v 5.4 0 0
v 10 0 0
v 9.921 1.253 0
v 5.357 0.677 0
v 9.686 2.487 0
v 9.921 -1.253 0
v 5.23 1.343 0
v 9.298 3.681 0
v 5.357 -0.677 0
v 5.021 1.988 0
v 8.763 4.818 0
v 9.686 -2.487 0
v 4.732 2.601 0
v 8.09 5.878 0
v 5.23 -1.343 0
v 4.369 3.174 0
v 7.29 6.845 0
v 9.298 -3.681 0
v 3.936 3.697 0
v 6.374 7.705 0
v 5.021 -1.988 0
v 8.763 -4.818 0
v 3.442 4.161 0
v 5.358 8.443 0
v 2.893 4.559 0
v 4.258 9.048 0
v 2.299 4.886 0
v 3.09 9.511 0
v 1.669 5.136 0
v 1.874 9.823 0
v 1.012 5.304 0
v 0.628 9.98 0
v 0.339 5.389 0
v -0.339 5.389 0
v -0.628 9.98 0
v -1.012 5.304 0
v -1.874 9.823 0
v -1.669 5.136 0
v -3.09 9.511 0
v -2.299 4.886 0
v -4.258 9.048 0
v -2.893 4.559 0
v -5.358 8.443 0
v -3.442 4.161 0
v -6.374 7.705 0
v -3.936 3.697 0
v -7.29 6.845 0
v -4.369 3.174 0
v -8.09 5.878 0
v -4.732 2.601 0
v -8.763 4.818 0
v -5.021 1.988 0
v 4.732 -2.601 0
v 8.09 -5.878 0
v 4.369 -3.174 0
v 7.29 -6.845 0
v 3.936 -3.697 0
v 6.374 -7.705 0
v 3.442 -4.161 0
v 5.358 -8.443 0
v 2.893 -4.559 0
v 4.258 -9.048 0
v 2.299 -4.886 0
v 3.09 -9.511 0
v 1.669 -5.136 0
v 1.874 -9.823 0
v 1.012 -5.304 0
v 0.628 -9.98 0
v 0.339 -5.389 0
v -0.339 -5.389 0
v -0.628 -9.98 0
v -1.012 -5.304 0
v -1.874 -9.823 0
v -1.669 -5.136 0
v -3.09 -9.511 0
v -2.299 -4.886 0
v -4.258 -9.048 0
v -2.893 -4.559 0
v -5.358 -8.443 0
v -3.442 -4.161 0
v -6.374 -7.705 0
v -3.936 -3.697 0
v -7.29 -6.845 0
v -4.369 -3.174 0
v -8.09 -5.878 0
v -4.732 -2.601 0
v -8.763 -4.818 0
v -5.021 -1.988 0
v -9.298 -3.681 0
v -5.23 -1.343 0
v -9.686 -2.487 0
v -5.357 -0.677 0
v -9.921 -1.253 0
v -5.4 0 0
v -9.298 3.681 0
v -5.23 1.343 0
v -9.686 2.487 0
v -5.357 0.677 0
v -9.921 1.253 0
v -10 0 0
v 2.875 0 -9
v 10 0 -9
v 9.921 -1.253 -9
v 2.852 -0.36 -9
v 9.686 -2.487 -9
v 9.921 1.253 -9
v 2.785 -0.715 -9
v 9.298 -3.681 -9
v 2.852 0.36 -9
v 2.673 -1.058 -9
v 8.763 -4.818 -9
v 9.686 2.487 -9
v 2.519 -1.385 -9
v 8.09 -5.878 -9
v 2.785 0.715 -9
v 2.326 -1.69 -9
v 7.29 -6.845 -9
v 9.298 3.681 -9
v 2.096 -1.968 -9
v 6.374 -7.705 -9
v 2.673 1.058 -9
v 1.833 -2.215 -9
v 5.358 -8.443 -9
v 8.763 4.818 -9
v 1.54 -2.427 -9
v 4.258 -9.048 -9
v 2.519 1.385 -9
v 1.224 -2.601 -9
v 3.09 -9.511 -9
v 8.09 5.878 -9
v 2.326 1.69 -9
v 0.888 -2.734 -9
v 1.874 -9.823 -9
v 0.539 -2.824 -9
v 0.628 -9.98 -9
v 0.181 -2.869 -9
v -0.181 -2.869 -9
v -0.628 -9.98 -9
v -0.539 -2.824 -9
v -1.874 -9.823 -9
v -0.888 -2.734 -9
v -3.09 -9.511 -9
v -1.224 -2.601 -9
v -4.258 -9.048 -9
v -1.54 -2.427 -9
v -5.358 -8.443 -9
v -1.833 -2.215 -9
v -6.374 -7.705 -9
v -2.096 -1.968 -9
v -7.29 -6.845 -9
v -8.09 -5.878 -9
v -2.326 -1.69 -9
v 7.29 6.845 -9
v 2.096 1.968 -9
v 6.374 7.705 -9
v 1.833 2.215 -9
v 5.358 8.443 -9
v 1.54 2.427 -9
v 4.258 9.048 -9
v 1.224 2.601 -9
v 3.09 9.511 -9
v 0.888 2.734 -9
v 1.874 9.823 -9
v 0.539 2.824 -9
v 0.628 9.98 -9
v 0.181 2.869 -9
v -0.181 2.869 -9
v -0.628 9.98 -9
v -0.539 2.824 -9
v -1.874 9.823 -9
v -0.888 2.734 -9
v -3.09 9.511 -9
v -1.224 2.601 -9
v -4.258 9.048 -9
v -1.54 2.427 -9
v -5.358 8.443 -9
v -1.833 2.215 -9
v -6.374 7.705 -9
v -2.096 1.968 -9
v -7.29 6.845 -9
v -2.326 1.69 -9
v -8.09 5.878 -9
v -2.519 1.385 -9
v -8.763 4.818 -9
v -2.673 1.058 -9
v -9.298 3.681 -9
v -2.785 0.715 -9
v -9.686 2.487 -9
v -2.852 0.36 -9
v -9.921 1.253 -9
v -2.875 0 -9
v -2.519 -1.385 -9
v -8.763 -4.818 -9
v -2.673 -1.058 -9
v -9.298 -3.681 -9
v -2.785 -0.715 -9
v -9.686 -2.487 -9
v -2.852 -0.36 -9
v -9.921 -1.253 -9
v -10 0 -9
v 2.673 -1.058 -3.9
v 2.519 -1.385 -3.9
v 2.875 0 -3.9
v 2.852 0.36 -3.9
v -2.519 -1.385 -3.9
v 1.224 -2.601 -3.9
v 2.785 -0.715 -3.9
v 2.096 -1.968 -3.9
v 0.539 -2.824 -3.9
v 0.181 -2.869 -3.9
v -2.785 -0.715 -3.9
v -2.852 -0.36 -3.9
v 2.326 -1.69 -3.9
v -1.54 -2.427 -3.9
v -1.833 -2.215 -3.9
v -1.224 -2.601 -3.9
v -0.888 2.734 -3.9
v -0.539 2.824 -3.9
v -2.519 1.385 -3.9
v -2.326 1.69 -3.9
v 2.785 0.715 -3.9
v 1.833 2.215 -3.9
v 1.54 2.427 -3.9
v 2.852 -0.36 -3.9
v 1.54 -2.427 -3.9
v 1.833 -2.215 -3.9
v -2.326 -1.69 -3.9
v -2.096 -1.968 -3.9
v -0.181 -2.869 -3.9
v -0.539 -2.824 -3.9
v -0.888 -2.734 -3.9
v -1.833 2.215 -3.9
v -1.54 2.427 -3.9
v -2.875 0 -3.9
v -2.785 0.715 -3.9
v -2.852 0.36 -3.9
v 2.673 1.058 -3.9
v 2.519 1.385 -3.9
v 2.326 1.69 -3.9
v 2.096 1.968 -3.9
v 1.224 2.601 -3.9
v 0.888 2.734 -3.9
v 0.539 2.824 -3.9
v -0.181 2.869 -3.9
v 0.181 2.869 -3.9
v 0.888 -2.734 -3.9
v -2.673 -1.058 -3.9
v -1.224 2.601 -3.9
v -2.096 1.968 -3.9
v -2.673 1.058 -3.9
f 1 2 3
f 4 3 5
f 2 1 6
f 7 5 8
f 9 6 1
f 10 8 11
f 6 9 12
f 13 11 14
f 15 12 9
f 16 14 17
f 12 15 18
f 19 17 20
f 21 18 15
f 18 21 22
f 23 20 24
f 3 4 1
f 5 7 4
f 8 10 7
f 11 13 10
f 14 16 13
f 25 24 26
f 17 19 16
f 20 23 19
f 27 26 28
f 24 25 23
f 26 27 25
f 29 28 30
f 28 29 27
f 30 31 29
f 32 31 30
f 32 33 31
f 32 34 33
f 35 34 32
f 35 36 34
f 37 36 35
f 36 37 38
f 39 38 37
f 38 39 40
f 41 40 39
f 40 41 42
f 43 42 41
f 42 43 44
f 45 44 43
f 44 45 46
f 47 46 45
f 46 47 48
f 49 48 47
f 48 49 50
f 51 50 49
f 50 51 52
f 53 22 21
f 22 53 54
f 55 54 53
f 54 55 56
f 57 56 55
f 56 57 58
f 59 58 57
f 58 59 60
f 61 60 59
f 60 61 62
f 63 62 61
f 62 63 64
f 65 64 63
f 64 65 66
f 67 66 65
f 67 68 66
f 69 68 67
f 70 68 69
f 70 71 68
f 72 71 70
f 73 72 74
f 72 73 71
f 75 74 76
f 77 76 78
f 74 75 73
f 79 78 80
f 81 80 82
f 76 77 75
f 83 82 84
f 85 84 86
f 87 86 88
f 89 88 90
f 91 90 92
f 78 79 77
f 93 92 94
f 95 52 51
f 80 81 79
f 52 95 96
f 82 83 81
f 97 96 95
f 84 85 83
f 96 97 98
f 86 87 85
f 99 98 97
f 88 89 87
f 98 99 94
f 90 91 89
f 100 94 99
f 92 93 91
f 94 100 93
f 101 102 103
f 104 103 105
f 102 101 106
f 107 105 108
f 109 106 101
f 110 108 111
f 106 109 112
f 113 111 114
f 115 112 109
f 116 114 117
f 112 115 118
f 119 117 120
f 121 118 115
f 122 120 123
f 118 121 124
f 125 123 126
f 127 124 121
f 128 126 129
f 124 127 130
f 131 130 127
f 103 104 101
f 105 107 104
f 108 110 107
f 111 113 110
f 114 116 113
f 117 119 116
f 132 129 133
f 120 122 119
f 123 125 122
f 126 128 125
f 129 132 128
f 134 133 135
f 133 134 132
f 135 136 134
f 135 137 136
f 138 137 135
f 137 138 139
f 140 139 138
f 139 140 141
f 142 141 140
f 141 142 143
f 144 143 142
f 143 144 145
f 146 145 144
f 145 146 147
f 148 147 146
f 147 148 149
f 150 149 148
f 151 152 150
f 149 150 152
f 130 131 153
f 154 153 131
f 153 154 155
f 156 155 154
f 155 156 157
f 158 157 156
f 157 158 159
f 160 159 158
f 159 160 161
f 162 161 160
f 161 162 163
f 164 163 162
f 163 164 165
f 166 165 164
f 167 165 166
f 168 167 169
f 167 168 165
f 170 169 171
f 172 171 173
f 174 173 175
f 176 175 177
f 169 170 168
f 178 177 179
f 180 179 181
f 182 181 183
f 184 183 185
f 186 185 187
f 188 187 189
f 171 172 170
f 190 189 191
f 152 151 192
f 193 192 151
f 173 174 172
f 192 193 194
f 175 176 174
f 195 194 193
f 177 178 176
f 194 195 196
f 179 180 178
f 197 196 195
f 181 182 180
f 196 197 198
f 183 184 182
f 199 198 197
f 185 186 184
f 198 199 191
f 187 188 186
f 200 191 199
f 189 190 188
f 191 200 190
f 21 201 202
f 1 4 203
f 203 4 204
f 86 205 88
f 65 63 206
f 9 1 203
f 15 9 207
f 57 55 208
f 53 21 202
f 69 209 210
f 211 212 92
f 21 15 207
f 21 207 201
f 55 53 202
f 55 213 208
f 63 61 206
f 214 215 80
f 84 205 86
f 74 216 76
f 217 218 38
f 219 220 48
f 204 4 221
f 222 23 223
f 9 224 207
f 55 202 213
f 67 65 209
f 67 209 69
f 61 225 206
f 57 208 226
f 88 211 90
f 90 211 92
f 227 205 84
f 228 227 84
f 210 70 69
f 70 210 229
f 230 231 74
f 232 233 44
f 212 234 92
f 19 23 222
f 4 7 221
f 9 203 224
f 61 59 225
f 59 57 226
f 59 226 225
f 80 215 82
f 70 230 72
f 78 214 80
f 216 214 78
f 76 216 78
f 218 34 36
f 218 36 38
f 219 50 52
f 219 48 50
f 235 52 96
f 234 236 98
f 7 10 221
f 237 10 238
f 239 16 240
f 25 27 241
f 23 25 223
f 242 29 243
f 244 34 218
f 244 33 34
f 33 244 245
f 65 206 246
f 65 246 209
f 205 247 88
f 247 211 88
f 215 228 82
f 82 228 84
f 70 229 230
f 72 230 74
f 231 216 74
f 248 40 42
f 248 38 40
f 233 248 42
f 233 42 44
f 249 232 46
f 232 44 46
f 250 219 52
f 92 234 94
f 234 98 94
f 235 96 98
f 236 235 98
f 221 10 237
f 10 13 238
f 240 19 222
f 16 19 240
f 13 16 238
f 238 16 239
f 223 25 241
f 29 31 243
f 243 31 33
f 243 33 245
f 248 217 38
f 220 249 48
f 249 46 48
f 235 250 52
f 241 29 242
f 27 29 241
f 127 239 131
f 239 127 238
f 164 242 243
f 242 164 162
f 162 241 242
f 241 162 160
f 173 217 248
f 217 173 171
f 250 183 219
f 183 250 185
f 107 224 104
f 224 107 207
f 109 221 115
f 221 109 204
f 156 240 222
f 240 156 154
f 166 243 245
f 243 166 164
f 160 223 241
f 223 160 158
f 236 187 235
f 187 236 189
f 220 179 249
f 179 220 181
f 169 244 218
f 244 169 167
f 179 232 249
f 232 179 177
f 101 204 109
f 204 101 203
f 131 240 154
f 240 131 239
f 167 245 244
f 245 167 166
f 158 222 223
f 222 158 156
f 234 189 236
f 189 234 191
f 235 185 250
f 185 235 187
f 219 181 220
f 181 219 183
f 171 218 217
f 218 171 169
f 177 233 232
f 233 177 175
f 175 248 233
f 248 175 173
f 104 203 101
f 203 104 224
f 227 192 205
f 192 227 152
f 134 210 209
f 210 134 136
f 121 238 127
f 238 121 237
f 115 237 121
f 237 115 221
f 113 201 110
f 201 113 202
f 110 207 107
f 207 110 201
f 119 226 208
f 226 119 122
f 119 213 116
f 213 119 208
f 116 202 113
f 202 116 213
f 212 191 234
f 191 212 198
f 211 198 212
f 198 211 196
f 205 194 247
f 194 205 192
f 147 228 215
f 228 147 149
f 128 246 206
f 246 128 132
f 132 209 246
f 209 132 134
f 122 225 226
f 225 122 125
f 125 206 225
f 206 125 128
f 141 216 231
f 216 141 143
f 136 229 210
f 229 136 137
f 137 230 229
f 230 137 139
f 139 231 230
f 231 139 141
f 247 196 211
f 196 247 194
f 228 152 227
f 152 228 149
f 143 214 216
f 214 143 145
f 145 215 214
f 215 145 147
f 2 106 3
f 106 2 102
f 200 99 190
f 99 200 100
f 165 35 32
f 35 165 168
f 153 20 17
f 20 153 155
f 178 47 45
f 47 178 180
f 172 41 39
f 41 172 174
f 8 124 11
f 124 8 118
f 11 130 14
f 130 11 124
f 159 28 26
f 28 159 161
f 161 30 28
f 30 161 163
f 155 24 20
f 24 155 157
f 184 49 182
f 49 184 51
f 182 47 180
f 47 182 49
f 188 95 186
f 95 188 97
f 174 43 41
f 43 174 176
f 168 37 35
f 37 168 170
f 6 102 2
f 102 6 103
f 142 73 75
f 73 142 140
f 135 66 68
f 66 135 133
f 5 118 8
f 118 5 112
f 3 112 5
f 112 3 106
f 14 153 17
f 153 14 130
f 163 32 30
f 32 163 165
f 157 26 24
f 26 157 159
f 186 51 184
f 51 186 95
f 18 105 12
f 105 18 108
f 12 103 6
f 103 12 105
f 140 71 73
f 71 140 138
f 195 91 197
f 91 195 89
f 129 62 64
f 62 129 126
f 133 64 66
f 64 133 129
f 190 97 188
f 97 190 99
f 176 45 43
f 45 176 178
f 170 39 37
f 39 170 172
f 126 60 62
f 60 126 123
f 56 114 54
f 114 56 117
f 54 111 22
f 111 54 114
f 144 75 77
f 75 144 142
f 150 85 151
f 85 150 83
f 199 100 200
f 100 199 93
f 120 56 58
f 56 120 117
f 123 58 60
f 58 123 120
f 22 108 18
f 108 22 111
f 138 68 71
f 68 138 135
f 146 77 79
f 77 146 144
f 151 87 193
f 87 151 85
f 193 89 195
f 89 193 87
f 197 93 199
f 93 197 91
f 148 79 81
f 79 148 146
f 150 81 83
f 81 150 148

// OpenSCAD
$fn = 50;


difference() {
	union() {
		translate(v = [0, 0, -9.0000000000]) {
			cylinder(h = 9, r = 10.0000000000);
		}
	}
	union() {
		translate(v = [0, 0, 0]) {
			rotate(a = [0, 0, 0]) {
				difference() {
					union() {
						#translate(v = [0, 0, -9.0000000000]) {
							cylinder(h = 9, r = 2.6000000000);
						}
						#translate(v = [0, 0, -3.9000000000]) {
							cylinder(h = 3.9000000000, r1 = 2.8750000000, r2 = 5.4000000000);
						}
						#translate(v = [0, 0, -9.0000000000]) {
							cylinder(h = 9, r = 2.8750000000);
						}
						#translate(v = [0, 0, -9.0000000000]) {
							cylinder(h = 9, r = 2.6000000000);
						}
					}
					union();
				}
			}
		}
	}
}
